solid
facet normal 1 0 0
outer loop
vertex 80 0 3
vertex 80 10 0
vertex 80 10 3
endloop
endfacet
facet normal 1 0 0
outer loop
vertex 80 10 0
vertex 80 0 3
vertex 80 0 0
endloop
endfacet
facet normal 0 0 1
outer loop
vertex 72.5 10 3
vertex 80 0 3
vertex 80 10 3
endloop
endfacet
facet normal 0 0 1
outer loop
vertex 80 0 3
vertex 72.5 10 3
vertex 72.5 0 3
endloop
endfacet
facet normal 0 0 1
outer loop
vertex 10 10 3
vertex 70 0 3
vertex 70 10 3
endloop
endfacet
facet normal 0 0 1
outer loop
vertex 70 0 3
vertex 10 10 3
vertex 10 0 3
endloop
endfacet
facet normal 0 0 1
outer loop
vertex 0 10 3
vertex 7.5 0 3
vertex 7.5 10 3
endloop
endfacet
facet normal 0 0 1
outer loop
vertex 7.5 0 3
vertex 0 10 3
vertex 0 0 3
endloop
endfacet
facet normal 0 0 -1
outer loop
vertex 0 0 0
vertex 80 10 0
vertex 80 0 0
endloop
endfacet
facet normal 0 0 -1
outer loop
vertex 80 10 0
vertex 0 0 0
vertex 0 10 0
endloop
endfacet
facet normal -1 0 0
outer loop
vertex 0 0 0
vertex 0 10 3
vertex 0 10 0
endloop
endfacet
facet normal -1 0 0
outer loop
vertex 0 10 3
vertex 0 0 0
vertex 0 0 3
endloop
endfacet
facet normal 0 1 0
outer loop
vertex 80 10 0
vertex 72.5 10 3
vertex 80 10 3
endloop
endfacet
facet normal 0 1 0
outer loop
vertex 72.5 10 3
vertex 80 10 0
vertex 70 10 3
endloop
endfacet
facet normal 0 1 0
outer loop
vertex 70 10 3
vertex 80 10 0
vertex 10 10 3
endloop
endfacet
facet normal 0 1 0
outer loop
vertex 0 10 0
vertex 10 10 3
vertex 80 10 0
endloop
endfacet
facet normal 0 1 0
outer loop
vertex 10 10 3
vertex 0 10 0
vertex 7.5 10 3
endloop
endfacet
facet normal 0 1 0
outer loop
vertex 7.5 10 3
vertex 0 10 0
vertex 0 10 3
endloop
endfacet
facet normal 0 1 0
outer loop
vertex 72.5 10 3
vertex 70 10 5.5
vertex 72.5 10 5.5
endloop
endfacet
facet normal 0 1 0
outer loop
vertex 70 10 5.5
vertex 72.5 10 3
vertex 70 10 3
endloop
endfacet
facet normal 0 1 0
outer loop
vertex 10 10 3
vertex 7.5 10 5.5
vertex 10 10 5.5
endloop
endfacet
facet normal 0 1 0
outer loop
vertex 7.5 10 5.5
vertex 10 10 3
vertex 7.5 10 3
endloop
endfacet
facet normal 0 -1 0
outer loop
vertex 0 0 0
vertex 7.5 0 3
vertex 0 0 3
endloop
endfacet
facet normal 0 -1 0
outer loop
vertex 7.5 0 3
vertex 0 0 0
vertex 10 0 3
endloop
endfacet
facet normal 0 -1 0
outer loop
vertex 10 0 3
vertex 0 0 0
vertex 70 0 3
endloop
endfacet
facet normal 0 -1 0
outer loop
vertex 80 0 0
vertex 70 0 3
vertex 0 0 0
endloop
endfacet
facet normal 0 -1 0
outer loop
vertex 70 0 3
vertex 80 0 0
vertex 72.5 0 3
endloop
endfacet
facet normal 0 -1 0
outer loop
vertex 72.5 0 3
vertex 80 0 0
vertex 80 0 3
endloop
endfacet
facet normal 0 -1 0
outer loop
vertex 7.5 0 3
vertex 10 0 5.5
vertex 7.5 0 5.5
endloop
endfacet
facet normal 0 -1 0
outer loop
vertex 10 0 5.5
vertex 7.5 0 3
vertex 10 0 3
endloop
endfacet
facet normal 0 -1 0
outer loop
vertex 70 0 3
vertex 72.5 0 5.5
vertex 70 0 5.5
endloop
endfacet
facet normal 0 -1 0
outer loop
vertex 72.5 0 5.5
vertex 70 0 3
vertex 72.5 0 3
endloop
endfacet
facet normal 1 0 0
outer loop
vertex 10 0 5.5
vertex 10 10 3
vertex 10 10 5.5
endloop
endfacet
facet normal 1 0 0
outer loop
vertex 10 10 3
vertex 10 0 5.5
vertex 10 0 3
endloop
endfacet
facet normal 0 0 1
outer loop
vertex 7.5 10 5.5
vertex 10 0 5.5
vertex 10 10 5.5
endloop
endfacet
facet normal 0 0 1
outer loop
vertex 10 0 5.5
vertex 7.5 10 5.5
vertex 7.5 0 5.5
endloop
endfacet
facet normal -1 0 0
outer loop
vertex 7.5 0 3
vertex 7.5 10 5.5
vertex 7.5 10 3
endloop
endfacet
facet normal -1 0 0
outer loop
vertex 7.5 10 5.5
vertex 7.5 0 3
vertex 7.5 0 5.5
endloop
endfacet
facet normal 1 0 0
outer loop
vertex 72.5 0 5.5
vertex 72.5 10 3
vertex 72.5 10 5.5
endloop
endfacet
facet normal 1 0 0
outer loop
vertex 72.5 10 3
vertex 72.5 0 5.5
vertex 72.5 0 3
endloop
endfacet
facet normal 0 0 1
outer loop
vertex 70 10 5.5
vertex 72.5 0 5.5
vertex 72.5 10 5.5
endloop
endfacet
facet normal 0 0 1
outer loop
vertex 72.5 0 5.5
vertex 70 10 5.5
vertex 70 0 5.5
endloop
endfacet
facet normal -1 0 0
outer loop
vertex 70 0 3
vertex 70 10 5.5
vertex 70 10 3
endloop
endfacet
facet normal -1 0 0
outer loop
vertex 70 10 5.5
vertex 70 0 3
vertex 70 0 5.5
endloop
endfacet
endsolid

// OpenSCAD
railwidth = 60;

width = 80;
depth = 10;
height = 3;

rail = 2.5;

union() {
    cube([width, depth, height]);
    translate([(width-railwidth)/2 -rail, 0, height]) {
        cube([rail, depth, rail]);
    }
    translate([railwidth+(width-railwidth)/2, 0, height]) {
        cube([rail, depth, rail]);
    }
}
